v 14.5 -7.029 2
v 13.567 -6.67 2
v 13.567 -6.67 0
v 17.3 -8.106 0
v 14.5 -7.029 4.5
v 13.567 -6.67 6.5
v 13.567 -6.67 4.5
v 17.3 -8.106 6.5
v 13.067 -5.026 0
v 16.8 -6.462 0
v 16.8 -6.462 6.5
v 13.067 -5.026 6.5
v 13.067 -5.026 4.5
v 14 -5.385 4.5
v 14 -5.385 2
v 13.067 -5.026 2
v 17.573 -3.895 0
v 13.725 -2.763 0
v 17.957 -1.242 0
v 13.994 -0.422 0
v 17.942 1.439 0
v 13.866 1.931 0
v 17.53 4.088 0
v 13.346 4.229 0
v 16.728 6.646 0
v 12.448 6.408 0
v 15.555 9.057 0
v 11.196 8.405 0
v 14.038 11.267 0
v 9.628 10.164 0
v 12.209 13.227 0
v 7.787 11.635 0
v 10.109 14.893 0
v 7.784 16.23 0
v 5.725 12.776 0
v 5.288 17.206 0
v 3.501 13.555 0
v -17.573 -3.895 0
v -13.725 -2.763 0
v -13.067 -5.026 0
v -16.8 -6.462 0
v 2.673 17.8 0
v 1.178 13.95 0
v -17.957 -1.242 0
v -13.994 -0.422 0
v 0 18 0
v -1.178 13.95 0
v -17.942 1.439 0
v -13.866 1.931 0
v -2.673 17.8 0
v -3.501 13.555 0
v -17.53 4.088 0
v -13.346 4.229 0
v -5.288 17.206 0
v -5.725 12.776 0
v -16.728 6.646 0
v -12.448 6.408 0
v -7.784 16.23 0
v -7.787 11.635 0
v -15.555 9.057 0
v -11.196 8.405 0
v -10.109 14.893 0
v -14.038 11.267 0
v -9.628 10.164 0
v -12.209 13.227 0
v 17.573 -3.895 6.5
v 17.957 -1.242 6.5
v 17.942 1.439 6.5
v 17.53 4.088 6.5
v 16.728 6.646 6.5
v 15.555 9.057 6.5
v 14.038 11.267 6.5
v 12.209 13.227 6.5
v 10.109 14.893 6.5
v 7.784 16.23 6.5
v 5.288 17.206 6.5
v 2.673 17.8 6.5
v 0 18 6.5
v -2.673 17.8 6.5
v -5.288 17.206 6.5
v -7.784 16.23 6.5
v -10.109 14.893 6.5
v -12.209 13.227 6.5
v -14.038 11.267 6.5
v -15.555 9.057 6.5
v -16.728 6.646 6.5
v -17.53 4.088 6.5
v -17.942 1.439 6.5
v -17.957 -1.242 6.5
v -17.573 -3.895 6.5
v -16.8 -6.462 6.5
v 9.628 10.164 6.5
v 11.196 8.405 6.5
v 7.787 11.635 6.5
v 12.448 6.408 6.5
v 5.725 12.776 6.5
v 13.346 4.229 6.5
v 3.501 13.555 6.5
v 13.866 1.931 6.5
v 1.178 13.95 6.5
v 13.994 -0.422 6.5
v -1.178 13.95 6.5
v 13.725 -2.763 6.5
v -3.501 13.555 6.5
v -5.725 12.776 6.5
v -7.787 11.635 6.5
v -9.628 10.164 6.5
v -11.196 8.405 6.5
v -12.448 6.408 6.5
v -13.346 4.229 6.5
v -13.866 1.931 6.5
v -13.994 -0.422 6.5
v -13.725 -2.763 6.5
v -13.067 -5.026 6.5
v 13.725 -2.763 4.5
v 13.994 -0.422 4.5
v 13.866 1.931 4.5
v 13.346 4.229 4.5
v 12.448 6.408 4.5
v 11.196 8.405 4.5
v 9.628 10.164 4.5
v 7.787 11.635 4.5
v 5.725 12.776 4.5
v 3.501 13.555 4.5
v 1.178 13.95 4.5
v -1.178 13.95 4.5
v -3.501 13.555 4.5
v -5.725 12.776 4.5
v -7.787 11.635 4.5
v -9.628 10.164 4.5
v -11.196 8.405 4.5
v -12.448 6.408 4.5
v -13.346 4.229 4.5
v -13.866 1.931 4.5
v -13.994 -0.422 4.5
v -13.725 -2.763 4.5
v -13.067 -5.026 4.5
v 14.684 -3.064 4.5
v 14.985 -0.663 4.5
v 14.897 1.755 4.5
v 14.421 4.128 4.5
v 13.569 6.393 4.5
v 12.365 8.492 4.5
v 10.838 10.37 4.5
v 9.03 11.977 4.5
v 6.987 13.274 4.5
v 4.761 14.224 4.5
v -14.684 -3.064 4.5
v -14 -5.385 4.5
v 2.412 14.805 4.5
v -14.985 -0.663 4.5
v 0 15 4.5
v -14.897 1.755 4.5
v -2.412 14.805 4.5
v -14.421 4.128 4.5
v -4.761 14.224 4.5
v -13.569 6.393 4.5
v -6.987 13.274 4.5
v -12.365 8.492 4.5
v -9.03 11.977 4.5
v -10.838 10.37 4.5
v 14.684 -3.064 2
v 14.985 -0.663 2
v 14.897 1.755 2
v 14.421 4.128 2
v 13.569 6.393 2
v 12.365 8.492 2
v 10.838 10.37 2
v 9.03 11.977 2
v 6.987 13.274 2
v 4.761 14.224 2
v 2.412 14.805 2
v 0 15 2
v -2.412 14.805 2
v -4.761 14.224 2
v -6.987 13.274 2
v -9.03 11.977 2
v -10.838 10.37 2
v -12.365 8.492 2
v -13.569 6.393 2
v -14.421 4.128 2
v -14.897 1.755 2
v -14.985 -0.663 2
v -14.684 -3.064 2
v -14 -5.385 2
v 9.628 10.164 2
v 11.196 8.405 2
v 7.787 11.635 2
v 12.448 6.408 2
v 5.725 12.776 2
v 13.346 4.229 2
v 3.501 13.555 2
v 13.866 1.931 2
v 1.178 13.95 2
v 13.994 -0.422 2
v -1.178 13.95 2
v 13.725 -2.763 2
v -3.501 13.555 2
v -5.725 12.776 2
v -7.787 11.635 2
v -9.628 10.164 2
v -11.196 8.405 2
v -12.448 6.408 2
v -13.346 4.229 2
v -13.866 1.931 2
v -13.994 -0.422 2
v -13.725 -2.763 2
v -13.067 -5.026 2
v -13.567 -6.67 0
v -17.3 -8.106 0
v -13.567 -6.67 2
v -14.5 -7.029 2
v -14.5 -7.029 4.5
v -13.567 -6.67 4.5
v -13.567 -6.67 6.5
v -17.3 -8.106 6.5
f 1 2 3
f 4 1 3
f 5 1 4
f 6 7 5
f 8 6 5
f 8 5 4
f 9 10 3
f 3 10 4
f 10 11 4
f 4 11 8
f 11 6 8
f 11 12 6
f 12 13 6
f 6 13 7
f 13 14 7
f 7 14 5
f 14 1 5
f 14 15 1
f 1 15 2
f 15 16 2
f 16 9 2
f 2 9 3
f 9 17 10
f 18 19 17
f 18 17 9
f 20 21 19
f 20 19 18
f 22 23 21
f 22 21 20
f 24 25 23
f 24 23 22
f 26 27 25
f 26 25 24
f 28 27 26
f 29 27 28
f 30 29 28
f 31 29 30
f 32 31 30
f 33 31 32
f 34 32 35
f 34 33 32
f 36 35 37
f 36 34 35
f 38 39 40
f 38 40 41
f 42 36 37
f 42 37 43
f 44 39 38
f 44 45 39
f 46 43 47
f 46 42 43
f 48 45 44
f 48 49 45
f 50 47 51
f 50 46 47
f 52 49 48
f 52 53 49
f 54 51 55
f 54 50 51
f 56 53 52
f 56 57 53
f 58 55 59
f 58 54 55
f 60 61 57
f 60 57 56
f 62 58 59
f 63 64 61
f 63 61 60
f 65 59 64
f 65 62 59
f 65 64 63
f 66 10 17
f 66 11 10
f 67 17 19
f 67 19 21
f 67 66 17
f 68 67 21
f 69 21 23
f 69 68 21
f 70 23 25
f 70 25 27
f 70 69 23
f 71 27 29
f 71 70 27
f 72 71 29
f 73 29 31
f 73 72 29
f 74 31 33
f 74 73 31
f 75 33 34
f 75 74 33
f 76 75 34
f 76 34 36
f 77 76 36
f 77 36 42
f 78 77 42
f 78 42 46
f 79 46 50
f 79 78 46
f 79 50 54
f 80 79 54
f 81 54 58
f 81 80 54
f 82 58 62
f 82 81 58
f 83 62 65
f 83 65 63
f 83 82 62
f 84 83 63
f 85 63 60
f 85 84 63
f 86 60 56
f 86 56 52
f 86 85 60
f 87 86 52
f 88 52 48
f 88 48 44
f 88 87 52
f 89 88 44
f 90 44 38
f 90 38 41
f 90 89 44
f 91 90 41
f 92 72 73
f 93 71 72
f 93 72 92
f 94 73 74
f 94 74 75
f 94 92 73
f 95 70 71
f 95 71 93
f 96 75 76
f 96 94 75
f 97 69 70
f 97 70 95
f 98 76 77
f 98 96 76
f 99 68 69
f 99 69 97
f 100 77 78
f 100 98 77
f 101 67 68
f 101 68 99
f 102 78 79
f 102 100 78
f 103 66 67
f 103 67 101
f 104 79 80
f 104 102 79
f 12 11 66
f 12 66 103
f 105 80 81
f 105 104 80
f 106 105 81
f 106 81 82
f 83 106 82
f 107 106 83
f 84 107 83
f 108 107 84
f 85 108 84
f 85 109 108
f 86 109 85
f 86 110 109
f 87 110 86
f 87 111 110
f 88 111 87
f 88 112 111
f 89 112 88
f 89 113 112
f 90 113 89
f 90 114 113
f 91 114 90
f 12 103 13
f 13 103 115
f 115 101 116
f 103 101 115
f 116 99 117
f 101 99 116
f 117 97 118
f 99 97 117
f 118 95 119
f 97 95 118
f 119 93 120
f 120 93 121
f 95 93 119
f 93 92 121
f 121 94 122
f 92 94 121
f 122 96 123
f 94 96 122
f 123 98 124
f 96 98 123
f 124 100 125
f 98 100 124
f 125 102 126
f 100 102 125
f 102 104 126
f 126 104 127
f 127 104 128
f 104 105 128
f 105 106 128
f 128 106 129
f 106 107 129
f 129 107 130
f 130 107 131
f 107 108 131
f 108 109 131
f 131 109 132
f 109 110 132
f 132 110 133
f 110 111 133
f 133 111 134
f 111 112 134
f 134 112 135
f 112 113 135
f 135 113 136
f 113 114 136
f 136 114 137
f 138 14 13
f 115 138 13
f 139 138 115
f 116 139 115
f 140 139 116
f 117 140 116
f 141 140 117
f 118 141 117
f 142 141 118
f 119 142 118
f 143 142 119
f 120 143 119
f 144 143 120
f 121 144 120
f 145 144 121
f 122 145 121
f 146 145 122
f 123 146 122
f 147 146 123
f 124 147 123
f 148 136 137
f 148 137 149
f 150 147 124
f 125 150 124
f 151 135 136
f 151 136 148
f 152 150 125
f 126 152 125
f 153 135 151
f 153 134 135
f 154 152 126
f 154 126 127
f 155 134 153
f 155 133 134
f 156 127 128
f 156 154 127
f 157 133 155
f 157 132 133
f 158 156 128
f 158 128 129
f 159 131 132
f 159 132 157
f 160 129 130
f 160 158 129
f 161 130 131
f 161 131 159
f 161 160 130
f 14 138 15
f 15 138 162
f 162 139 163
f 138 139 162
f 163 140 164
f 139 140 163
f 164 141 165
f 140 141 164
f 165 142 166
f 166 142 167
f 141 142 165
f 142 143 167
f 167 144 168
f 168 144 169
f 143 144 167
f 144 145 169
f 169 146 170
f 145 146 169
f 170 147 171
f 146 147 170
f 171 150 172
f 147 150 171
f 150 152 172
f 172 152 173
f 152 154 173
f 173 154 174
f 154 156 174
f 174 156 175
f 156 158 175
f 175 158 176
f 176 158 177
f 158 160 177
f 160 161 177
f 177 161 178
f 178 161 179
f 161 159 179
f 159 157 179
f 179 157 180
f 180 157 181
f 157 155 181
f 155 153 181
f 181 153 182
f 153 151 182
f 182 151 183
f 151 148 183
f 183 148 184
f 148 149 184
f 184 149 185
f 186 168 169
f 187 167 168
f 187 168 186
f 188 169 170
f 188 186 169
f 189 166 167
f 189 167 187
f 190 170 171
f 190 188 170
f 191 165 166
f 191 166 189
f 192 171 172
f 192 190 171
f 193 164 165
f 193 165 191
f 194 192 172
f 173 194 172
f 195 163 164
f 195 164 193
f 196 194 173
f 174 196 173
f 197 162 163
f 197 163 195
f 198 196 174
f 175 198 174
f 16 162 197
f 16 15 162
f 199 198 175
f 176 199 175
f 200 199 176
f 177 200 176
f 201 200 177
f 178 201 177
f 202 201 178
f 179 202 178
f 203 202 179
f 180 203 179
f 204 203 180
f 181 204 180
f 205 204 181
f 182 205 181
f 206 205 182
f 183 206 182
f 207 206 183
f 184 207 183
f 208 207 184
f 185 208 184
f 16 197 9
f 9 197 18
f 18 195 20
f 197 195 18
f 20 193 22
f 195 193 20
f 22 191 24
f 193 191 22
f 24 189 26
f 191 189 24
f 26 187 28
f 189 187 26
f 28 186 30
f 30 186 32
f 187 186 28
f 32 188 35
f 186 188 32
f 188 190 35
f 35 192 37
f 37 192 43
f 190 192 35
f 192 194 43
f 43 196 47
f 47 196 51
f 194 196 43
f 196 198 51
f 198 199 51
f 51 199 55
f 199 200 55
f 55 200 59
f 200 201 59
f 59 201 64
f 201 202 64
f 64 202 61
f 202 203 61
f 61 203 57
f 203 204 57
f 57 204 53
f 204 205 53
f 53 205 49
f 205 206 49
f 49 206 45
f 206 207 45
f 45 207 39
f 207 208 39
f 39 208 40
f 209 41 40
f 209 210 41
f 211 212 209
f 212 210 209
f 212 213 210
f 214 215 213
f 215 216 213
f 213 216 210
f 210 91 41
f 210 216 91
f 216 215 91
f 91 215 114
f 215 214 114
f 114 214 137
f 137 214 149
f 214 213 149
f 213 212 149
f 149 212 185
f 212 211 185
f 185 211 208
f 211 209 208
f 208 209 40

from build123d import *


with BuildPart() as part:
    # AdditivePipe: sweep along a path in Sketch001
    with BuildLine(Plane.XY) as additivepipe_path:
        Line((14.5, -7.028732), (14, -5.385165))
        ThreePointArc((14, -5.385165), (0, 15), (-14, -5.385165))
        Line((-14, -5.385165), (-14.5, -7.028732))
    # Sketch → AdditivePipe (sweep)
    with BuildSketch(Plane.XZ):
        Polygon((14, 0), (18, 0), (18, 6.5), (14, 6.5), (14, 4.5), (15, 4.5), (15, 2), (14, 2), align=None)
    sweep(path=additivepipe_path.line)


solid = part.part
